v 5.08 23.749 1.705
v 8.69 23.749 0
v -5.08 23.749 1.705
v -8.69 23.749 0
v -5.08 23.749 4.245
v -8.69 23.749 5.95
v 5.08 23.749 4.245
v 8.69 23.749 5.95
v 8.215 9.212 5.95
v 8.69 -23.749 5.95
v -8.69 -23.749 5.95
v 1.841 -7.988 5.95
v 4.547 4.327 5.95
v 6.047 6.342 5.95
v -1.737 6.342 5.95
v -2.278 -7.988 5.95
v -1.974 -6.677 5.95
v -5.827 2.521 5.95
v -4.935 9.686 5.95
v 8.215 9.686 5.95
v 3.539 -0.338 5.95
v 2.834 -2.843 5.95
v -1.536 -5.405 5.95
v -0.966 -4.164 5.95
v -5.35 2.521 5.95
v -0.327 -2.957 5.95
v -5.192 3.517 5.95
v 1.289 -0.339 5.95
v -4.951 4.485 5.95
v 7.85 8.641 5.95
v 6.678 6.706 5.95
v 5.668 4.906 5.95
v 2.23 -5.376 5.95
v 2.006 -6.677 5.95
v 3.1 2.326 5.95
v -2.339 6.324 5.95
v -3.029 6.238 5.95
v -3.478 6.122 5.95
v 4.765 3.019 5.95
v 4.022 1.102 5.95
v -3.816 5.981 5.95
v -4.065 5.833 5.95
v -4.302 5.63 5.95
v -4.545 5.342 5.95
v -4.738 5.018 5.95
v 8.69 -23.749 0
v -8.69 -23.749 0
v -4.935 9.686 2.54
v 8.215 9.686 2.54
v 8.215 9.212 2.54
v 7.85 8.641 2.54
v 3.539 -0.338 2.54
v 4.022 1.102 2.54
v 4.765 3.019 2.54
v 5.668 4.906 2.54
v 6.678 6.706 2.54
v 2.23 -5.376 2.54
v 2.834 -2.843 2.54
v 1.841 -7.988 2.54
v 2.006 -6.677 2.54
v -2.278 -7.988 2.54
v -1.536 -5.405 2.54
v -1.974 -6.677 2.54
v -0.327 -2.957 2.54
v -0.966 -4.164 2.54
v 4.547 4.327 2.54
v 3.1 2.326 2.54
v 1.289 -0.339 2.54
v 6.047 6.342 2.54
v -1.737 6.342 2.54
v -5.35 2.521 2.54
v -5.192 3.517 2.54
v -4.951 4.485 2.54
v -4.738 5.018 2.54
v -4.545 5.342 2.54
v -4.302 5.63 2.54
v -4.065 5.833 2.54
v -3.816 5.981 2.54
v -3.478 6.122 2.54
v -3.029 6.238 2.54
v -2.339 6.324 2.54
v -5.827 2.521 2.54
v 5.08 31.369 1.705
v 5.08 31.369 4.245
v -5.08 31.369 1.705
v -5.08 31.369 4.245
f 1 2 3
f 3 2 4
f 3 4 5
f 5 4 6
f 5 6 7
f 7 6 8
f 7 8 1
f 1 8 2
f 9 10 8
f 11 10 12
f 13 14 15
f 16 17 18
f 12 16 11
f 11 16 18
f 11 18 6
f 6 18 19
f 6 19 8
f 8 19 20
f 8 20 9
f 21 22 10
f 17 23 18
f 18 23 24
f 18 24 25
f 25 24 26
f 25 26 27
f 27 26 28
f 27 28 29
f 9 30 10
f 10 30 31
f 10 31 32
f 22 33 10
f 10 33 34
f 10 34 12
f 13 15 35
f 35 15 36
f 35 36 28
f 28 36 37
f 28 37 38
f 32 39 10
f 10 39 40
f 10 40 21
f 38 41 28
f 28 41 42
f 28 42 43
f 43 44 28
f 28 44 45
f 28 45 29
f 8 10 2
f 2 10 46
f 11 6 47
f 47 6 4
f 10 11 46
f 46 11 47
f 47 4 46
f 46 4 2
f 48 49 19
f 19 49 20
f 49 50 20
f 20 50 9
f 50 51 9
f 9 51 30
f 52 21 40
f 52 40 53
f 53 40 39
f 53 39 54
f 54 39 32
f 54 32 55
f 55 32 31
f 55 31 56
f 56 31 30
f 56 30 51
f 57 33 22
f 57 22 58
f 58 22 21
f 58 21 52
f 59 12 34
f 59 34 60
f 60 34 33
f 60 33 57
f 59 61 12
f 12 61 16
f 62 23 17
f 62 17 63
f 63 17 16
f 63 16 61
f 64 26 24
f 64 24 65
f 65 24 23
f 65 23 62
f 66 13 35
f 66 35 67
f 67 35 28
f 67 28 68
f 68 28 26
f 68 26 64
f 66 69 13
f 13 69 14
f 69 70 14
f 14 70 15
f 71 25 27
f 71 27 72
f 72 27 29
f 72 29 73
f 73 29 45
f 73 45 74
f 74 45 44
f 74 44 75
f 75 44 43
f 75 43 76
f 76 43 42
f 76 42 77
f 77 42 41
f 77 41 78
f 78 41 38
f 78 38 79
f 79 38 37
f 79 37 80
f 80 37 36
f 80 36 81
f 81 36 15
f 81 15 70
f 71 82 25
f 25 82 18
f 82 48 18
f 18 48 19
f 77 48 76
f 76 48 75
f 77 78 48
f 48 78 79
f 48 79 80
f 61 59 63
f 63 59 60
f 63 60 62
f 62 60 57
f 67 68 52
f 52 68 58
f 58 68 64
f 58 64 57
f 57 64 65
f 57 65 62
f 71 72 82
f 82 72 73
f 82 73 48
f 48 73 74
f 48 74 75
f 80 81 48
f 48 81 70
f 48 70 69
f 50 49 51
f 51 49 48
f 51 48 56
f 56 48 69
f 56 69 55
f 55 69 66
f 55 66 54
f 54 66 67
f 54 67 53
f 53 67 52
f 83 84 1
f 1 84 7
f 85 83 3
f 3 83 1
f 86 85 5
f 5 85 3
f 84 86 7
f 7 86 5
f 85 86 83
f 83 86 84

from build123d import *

# Parameters (mm, degrees)
SKETCH1_W           = 17.38
SKETCH1_H           = 47.498
BOSS_EXTRUDE1_DEPTH = 5.95
CUT_EXTRUDE1_DEPTH  = 3.41
SKETCH3_W           = 10.16
SKETCH3_H           = 2.54
BOSS_EXTRUDE2_DEPTH = 7.62


with BuildPart() as part:
    # Sketch1 → Boss-Extrude1 (new body)
    with BuildSketch(Plane.XY):
        Rectangle(SKETCH1_W, SKETCH1_H)
    extrude(amount=BOSS_EXTRUDE1_DEPTH)

    # Sketch2 → Cut-Extrude1 (cut)
    with BuildSketch(Plane.XY.offset(5.95)):
        with BuildLine():
            Line((8.21521828, 9.685626239), (8.21521828, 9.211700107))
            Line((8.21521828, 9.211700107), (7.849511502, 8.640749728))
            add(Edge.make_bspline(
                [(7.849511502, 8.640749728), (7.659628318, 8.334002218), (7.295032049, 7.745013788), (6.782872216, 6.88889346), (6.32474967, 6.098434688), (5.785332579, 5.145897577), (5.201924307, 4.005544018), (4.689678821, 2.864966249), (4.323103082, 1.941121665), (4.060487027, 1.215232336), (3.79297562, 0.453893084), (3.625200839, -0.069861436), (3.539395894, -0.337724864)],
                knots=[0, 0, 0, 0, 1.083039837, 2.079553741, 2.994830702, 3.825809671, 5.365663433, 6.838340046, 7.577558492, 8.349012095, 9.155636346, 10, 10, 10, 10], degree=3))
            add(Edge.make_bspline(
                [(3.539395894, -0.337724864), (3.294518486, -1.175139297), (2.807311479, -2.84125535), (2.421476965, -4.533716864), (2.229568553, -5.375522327)],
                knots=[0, 0, 0, 0, 1.005229416, 2, 2, 2, 2], degree=3))
            add(Edge.make_bspline(
                [(2.229568553, -5.375522327), (2.14861537, -5.818843498), (1.990394666, -6.685302183), (1.890335658, -7.560371208), (1.841471563, -7.987713605)],
                knots=[0, 0, 0, 0, 1.023294424, 2, 2, 2, 2], degree=3))
            Line((1.841471563, -7.987713605), (-2.278327252, -7.987713605))
            add(Edge.make_bspline(
                [(-2.278327252, -7.987713605), (-2.228426027, -7.742123959), (-2.132197133, -7.268531969), (-1.955335735, -6.592737484), (-1.766303583, -5.973619712), (-1.61053551, -5.589751553), (-1.535718589, -5.405375942)],
                knots=[0, 0, 0, 0, 1.116992291, 2.153993903, 3.113345314, 4, 4, 4, 4], degree=3))
            add(Edge.make_bspline(
                [(-1.535718589, -5.405375942), (-1.432470379, -5.170955855), (-1.233678754, -4.719609045), (-0.927100645, -4.077764225), (-0.630798746, -3.494030209), (-0.424952864, -3.130831897), (-0.326647197, -2.957379545)],
                knots=[0, 0, 0, 0, 1.125146569, 2.166330209, 3.124295659, 4, 4, 4, 4], degree=3))
            add(Edge.make_bspline(
                [(-0.326647197, -2.957379545), (-0.160956821, -2.676902535), (0.175753632, -2.106926516), (0.708141987, -1.248784349), (1.266217599, -0.367355885), (1.86140604, 0.532183687), (2.487318367, 1.452627488), (3.145855822, 2.393106788), (3.830525284, 3.357049593), (4.305847593, 4.000507598), (4.546955386, 4.326902418)],
                knots=[0, 0, 0, 0, 0.891601375, 1.811882565, 2.763935491, 3.74693406, 4.763958923, 5.810457796, 6.889352178, 8, 8, 8, 8], degree=3))
            Line((4.546955386, 4.326902418), (6.04709952, 6.342021403))
            Line((6.04709952, 6.342021403), (-1.737230487, 6.342021403))
            add(Edge.make_bspline(
                [(-1.737230487, 6.342021403), (-1.941407392, 6.33928709), (-2.324644322, 6.334154827), (-2.863158098, 6.274892972), (-3.328967641, 6.178379532), (-3.727025146, 6.035733564), (-4.070606045, 5.846274621), (-4.356427977, 5.588671706), (-4.60409946, 5.276798523), (-4.806692036, 4.896670937), (-4.974895269, 4.437516142), (-5.119721138, 3.888492313), (-5.250293202, 3.239224301), (-5.314926889, 2.771224888), (-5.349517854, 2.520758735)],
                knots=[0, 0, 0, 0, 1.211762192, 2.274459111, 3.211702032, 4.029445416, 4.776937485, 5.525195333, 6.297980953, 7.13082587, 8.070422764, 9.195545804, 10.499098859, 12, 12, 12, 12], degree=3))
            Line((-5.349517854, 2.520758735), (-5.827175687, 2.520758735))
            Line((-5.827175687, 2.520758735), (-4.935298951, 9.685626239))
            Line((-4.935298951, 9.685626239), (8.21521828, 9.685626239))
        make_face()
    extrude(amount=-CUT_EXTRUDE1_DEPTH, mode=Mode.SUBTRACT)

    # Sketch3 → Boss-Extrude2 (add)
    with BuildSketch(Plane(origin=(0, 23.749, 0), x_dir=(1, 0, 0), z_dir=(0, 1, 0))):
        with Locations((0, -2.975)):
            Rectangle(SKETCH3_W, SKETCH3_H)
    extrude(amount=BOSS_EXTRUDE2_DEPTH)


solid = part.part
